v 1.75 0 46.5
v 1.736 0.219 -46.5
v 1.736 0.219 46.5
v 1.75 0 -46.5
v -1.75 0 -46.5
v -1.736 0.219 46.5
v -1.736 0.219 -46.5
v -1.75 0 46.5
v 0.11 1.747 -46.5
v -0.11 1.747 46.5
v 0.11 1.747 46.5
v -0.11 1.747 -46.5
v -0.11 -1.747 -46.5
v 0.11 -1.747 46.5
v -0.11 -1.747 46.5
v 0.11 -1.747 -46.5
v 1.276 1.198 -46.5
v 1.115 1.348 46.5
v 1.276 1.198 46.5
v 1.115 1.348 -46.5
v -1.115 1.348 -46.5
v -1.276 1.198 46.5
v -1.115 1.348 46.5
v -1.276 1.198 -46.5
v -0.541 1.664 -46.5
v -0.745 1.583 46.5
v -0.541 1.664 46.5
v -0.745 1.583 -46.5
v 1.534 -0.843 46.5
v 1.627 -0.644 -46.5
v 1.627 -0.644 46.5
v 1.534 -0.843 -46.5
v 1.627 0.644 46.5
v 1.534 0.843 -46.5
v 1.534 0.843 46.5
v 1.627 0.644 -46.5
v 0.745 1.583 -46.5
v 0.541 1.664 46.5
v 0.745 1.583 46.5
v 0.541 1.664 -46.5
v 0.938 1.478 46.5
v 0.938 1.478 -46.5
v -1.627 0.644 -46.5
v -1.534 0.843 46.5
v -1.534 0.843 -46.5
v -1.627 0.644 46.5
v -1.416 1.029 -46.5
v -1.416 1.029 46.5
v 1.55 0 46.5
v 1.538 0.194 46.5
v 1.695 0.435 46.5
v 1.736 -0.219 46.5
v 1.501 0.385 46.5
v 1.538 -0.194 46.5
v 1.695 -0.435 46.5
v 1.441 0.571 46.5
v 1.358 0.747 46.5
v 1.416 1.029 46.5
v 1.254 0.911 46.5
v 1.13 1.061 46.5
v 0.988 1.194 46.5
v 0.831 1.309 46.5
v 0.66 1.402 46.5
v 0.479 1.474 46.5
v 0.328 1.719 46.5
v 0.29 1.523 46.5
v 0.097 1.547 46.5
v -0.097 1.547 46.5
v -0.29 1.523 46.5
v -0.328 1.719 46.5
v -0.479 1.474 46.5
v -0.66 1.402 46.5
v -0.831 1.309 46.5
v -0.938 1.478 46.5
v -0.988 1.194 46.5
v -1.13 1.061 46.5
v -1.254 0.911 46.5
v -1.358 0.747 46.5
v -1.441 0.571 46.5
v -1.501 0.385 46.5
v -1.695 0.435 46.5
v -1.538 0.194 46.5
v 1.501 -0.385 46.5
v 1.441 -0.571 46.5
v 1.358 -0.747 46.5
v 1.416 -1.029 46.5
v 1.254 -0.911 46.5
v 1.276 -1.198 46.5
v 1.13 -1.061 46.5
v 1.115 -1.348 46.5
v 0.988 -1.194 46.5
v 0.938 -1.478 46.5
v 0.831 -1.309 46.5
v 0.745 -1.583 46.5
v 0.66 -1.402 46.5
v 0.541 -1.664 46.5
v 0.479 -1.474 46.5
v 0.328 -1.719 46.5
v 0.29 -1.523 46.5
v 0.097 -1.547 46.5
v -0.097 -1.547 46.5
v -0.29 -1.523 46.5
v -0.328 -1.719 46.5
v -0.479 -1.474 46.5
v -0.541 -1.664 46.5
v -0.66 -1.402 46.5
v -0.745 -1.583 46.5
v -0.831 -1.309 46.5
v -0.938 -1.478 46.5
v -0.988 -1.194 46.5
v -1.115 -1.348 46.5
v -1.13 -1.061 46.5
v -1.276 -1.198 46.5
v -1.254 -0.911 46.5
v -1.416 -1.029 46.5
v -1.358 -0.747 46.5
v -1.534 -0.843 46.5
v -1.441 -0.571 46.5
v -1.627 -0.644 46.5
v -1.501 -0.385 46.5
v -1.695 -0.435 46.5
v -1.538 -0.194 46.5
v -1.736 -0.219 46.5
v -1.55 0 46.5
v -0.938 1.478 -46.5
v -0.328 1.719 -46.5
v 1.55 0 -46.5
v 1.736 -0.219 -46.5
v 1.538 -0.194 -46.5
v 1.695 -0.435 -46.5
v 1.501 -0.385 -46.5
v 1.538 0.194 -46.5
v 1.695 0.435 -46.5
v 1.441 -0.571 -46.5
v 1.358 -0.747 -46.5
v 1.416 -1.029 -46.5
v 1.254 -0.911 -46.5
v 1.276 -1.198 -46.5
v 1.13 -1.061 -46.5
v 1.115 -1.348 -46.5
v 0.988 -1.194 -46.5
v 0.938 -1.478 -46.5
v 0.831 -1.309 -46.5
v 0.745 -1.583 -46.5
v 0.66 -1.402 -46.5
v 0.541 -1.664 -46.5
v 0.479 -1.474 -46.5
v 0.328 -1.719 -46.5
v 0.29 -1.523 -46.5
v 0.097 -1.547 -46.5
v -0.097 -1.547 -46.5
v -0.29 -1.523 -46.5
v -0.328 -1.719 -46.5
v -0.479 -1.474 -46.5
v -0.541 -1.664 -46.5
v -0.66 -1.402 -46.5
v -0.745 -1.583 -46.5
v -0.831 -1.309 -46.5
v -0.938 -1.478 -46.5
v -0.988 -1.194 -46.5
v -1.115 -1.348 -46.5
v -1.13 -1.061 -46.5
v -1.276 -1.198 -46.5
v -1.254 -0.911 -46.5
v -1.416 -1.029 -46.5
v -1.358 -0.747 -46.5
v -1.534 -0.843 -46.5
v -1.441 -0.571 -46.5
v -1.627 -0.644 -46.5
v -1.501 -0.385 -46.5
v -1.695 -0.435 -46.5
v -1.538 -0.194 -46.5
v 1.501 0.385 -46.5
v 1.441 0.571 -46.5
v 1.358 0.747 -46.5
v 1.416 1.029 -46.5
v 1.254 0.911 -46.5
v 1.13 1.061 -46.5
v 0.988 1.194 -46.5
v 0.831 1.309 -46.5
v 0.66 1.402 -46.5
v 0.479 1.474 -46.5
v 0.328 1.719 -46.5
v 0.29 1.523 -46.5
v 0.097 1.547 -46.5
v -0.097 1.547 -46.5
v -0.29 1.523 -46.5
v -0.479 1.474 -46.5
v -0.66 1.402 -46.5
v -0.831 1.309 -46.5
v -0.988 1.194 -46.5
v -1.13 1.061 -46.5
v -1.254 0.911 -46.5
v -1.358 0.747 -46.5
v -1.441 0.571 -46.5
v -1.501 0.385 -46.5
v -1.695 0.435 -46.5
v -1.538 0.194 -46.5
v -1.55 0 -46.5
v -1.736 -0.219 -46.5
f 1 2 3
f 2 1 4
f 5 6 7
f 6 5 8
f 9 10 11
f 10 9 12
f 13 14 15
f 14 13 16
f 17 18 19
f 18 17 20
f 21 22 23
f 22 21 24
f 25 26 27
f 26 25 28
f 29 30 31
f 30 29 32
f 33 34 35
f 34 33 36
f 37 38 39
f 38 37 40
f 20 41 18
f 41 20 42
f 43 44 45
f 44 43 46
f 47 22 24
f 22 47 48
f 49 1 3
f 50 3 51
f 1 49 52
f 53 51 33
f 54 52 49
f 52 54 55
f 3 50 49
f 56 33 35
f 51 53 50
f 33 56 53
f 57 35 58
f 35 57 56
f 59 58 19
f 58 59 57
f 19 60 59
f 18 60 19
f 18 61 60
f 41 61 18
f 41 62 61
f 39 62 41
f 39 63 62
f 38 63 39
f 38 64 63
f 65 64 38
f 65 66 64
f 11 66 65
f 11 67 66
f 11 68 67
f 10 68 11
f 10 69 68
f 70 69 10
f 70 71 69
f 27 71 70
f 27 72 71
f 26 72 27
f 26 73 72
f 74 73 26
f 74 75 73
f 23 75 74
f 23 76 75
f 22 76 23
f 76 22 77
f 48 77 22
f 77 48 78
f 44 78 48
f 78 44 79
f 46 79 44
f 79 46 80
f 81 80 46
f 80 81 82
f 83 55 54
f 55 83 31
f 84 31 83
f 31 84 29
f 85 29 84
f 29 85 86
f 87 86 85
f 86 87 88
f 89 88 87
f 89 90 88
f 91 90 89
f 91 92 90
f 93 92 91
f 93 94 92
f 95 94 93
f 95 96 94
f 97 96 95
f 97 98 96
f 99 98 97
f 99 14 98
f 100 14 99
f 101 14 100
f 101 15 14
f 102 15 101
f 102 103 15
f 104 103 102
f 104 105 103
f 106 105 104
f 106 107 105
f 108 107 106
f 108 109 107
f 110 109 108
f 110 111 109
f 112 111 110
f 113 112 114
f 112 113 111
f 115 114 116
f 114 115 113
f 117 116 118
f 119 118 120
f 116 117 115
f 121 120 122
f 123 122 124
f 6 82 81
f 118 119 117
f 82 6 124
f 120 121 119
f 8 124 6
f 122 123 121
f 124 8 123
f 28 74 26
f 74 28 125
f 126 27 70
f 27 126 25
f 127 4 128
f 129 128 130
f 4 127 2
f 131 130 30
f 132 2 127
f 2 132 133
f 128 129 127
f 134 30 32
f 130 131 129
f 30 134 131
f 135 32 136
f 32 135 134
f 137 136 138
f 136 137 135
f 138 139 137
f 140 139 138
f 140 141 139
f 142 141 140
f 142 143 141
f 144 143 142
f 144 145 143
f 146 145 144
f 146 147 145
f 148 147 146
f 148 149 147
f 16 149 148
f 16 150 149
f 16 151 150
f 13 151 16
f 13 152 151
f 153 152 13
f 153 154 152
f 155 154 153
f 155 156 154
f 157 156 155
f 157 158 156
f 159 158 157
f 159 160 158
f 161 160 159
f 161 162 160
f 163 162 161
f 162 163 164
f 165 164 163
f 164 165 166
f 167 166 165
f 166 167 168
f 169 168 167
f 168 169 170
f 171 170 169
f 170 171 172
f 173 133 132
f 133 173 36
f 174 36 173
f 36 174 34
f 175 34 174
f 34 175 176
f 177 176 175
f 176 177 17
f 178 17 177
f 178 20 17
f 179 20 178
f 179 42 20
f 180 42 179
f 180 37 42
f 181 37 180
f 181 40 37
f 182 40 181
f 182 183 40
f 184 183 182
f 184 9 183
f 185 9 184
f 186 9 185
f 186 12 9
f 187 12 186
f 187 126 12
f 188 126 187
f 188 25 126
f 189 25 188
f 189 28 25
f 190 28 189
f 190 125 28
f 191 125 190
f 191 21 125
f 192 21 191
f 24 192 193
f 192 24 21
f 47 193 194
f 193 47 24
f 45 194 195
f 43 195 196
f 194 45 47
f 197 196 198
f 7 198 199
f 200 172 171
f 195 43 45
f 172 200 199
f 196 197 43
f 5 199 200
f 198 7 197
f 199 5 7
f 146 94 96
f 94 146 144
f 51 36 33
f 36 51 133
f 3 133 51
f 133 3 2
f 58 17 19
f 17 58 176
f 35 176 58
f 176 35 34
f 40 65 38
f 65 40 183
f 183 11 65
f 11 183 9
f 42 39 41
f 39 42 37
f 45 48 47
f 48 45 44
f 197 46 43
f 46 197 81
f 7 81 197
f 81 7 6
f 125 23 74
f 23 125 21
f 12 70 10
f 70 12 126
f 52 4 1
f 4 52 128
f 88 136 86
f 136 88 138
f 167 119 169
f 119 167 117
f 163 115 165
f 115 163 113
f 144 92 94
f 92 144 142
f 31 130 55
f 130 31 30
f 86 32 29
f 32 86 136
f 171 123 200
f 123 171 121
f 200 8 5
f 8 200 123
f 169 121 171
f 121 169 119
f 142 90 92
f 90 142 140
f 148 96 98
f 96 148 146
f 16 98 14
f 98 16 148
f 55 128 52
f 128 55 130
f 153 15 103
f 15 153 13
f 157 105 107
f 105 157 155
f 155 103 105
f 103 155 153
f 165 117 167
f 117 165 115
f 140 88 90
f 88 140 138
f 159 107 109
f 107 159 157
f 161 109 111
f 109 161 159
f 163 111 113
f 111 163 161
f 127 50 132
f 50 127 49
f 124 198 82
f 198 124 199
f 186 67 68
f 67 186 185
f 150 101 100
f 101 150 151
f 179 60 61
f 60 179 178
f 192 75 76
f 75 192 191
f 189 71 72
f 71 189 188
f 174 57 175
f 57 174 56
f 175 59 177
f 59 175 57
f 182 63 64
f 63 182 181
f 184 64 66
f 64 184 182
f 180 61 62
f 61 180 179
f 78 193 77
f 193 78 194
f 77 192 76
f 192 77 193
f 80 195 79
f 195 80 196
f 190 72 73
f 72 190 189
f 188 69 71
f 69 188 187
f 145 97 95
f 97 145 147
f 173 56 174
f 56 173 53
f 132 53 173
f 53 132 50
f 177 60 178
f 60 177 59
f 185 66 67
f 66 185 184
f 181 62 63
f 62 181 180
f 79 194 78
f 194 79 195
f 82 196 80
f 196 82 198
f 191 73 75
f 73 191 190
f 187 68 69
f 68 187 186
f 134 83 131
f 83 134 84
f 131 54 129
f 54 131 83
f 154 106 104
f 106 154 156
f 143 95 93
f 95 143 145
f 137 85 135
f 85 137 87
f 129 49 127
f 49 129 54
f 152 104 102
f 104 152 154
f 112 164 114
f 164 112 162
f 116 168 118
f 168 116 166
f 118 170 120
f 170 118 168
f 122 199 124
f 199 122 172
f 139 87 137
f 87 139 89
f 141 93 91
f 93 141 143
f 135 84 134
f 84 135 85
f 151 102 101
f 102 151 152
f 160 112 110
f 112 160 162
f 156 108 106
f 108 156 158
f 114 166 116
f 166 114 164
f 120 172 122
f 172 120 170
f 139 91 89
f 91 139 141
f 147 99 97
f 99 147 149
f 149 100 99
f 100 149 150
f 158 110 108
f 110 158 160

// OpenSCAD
$fn = 50;


difference() {
	union() {
		translate(v = [0, 0, -46.5000000000]) {
			cylinder(h = 93, r = 1.7500000000);
		}
	}
	union() {
		translate(v = [0, 0, -100.0000000000]) {
			cylinder(h = 200, r = 1.5500000000);
		}
	}
}
